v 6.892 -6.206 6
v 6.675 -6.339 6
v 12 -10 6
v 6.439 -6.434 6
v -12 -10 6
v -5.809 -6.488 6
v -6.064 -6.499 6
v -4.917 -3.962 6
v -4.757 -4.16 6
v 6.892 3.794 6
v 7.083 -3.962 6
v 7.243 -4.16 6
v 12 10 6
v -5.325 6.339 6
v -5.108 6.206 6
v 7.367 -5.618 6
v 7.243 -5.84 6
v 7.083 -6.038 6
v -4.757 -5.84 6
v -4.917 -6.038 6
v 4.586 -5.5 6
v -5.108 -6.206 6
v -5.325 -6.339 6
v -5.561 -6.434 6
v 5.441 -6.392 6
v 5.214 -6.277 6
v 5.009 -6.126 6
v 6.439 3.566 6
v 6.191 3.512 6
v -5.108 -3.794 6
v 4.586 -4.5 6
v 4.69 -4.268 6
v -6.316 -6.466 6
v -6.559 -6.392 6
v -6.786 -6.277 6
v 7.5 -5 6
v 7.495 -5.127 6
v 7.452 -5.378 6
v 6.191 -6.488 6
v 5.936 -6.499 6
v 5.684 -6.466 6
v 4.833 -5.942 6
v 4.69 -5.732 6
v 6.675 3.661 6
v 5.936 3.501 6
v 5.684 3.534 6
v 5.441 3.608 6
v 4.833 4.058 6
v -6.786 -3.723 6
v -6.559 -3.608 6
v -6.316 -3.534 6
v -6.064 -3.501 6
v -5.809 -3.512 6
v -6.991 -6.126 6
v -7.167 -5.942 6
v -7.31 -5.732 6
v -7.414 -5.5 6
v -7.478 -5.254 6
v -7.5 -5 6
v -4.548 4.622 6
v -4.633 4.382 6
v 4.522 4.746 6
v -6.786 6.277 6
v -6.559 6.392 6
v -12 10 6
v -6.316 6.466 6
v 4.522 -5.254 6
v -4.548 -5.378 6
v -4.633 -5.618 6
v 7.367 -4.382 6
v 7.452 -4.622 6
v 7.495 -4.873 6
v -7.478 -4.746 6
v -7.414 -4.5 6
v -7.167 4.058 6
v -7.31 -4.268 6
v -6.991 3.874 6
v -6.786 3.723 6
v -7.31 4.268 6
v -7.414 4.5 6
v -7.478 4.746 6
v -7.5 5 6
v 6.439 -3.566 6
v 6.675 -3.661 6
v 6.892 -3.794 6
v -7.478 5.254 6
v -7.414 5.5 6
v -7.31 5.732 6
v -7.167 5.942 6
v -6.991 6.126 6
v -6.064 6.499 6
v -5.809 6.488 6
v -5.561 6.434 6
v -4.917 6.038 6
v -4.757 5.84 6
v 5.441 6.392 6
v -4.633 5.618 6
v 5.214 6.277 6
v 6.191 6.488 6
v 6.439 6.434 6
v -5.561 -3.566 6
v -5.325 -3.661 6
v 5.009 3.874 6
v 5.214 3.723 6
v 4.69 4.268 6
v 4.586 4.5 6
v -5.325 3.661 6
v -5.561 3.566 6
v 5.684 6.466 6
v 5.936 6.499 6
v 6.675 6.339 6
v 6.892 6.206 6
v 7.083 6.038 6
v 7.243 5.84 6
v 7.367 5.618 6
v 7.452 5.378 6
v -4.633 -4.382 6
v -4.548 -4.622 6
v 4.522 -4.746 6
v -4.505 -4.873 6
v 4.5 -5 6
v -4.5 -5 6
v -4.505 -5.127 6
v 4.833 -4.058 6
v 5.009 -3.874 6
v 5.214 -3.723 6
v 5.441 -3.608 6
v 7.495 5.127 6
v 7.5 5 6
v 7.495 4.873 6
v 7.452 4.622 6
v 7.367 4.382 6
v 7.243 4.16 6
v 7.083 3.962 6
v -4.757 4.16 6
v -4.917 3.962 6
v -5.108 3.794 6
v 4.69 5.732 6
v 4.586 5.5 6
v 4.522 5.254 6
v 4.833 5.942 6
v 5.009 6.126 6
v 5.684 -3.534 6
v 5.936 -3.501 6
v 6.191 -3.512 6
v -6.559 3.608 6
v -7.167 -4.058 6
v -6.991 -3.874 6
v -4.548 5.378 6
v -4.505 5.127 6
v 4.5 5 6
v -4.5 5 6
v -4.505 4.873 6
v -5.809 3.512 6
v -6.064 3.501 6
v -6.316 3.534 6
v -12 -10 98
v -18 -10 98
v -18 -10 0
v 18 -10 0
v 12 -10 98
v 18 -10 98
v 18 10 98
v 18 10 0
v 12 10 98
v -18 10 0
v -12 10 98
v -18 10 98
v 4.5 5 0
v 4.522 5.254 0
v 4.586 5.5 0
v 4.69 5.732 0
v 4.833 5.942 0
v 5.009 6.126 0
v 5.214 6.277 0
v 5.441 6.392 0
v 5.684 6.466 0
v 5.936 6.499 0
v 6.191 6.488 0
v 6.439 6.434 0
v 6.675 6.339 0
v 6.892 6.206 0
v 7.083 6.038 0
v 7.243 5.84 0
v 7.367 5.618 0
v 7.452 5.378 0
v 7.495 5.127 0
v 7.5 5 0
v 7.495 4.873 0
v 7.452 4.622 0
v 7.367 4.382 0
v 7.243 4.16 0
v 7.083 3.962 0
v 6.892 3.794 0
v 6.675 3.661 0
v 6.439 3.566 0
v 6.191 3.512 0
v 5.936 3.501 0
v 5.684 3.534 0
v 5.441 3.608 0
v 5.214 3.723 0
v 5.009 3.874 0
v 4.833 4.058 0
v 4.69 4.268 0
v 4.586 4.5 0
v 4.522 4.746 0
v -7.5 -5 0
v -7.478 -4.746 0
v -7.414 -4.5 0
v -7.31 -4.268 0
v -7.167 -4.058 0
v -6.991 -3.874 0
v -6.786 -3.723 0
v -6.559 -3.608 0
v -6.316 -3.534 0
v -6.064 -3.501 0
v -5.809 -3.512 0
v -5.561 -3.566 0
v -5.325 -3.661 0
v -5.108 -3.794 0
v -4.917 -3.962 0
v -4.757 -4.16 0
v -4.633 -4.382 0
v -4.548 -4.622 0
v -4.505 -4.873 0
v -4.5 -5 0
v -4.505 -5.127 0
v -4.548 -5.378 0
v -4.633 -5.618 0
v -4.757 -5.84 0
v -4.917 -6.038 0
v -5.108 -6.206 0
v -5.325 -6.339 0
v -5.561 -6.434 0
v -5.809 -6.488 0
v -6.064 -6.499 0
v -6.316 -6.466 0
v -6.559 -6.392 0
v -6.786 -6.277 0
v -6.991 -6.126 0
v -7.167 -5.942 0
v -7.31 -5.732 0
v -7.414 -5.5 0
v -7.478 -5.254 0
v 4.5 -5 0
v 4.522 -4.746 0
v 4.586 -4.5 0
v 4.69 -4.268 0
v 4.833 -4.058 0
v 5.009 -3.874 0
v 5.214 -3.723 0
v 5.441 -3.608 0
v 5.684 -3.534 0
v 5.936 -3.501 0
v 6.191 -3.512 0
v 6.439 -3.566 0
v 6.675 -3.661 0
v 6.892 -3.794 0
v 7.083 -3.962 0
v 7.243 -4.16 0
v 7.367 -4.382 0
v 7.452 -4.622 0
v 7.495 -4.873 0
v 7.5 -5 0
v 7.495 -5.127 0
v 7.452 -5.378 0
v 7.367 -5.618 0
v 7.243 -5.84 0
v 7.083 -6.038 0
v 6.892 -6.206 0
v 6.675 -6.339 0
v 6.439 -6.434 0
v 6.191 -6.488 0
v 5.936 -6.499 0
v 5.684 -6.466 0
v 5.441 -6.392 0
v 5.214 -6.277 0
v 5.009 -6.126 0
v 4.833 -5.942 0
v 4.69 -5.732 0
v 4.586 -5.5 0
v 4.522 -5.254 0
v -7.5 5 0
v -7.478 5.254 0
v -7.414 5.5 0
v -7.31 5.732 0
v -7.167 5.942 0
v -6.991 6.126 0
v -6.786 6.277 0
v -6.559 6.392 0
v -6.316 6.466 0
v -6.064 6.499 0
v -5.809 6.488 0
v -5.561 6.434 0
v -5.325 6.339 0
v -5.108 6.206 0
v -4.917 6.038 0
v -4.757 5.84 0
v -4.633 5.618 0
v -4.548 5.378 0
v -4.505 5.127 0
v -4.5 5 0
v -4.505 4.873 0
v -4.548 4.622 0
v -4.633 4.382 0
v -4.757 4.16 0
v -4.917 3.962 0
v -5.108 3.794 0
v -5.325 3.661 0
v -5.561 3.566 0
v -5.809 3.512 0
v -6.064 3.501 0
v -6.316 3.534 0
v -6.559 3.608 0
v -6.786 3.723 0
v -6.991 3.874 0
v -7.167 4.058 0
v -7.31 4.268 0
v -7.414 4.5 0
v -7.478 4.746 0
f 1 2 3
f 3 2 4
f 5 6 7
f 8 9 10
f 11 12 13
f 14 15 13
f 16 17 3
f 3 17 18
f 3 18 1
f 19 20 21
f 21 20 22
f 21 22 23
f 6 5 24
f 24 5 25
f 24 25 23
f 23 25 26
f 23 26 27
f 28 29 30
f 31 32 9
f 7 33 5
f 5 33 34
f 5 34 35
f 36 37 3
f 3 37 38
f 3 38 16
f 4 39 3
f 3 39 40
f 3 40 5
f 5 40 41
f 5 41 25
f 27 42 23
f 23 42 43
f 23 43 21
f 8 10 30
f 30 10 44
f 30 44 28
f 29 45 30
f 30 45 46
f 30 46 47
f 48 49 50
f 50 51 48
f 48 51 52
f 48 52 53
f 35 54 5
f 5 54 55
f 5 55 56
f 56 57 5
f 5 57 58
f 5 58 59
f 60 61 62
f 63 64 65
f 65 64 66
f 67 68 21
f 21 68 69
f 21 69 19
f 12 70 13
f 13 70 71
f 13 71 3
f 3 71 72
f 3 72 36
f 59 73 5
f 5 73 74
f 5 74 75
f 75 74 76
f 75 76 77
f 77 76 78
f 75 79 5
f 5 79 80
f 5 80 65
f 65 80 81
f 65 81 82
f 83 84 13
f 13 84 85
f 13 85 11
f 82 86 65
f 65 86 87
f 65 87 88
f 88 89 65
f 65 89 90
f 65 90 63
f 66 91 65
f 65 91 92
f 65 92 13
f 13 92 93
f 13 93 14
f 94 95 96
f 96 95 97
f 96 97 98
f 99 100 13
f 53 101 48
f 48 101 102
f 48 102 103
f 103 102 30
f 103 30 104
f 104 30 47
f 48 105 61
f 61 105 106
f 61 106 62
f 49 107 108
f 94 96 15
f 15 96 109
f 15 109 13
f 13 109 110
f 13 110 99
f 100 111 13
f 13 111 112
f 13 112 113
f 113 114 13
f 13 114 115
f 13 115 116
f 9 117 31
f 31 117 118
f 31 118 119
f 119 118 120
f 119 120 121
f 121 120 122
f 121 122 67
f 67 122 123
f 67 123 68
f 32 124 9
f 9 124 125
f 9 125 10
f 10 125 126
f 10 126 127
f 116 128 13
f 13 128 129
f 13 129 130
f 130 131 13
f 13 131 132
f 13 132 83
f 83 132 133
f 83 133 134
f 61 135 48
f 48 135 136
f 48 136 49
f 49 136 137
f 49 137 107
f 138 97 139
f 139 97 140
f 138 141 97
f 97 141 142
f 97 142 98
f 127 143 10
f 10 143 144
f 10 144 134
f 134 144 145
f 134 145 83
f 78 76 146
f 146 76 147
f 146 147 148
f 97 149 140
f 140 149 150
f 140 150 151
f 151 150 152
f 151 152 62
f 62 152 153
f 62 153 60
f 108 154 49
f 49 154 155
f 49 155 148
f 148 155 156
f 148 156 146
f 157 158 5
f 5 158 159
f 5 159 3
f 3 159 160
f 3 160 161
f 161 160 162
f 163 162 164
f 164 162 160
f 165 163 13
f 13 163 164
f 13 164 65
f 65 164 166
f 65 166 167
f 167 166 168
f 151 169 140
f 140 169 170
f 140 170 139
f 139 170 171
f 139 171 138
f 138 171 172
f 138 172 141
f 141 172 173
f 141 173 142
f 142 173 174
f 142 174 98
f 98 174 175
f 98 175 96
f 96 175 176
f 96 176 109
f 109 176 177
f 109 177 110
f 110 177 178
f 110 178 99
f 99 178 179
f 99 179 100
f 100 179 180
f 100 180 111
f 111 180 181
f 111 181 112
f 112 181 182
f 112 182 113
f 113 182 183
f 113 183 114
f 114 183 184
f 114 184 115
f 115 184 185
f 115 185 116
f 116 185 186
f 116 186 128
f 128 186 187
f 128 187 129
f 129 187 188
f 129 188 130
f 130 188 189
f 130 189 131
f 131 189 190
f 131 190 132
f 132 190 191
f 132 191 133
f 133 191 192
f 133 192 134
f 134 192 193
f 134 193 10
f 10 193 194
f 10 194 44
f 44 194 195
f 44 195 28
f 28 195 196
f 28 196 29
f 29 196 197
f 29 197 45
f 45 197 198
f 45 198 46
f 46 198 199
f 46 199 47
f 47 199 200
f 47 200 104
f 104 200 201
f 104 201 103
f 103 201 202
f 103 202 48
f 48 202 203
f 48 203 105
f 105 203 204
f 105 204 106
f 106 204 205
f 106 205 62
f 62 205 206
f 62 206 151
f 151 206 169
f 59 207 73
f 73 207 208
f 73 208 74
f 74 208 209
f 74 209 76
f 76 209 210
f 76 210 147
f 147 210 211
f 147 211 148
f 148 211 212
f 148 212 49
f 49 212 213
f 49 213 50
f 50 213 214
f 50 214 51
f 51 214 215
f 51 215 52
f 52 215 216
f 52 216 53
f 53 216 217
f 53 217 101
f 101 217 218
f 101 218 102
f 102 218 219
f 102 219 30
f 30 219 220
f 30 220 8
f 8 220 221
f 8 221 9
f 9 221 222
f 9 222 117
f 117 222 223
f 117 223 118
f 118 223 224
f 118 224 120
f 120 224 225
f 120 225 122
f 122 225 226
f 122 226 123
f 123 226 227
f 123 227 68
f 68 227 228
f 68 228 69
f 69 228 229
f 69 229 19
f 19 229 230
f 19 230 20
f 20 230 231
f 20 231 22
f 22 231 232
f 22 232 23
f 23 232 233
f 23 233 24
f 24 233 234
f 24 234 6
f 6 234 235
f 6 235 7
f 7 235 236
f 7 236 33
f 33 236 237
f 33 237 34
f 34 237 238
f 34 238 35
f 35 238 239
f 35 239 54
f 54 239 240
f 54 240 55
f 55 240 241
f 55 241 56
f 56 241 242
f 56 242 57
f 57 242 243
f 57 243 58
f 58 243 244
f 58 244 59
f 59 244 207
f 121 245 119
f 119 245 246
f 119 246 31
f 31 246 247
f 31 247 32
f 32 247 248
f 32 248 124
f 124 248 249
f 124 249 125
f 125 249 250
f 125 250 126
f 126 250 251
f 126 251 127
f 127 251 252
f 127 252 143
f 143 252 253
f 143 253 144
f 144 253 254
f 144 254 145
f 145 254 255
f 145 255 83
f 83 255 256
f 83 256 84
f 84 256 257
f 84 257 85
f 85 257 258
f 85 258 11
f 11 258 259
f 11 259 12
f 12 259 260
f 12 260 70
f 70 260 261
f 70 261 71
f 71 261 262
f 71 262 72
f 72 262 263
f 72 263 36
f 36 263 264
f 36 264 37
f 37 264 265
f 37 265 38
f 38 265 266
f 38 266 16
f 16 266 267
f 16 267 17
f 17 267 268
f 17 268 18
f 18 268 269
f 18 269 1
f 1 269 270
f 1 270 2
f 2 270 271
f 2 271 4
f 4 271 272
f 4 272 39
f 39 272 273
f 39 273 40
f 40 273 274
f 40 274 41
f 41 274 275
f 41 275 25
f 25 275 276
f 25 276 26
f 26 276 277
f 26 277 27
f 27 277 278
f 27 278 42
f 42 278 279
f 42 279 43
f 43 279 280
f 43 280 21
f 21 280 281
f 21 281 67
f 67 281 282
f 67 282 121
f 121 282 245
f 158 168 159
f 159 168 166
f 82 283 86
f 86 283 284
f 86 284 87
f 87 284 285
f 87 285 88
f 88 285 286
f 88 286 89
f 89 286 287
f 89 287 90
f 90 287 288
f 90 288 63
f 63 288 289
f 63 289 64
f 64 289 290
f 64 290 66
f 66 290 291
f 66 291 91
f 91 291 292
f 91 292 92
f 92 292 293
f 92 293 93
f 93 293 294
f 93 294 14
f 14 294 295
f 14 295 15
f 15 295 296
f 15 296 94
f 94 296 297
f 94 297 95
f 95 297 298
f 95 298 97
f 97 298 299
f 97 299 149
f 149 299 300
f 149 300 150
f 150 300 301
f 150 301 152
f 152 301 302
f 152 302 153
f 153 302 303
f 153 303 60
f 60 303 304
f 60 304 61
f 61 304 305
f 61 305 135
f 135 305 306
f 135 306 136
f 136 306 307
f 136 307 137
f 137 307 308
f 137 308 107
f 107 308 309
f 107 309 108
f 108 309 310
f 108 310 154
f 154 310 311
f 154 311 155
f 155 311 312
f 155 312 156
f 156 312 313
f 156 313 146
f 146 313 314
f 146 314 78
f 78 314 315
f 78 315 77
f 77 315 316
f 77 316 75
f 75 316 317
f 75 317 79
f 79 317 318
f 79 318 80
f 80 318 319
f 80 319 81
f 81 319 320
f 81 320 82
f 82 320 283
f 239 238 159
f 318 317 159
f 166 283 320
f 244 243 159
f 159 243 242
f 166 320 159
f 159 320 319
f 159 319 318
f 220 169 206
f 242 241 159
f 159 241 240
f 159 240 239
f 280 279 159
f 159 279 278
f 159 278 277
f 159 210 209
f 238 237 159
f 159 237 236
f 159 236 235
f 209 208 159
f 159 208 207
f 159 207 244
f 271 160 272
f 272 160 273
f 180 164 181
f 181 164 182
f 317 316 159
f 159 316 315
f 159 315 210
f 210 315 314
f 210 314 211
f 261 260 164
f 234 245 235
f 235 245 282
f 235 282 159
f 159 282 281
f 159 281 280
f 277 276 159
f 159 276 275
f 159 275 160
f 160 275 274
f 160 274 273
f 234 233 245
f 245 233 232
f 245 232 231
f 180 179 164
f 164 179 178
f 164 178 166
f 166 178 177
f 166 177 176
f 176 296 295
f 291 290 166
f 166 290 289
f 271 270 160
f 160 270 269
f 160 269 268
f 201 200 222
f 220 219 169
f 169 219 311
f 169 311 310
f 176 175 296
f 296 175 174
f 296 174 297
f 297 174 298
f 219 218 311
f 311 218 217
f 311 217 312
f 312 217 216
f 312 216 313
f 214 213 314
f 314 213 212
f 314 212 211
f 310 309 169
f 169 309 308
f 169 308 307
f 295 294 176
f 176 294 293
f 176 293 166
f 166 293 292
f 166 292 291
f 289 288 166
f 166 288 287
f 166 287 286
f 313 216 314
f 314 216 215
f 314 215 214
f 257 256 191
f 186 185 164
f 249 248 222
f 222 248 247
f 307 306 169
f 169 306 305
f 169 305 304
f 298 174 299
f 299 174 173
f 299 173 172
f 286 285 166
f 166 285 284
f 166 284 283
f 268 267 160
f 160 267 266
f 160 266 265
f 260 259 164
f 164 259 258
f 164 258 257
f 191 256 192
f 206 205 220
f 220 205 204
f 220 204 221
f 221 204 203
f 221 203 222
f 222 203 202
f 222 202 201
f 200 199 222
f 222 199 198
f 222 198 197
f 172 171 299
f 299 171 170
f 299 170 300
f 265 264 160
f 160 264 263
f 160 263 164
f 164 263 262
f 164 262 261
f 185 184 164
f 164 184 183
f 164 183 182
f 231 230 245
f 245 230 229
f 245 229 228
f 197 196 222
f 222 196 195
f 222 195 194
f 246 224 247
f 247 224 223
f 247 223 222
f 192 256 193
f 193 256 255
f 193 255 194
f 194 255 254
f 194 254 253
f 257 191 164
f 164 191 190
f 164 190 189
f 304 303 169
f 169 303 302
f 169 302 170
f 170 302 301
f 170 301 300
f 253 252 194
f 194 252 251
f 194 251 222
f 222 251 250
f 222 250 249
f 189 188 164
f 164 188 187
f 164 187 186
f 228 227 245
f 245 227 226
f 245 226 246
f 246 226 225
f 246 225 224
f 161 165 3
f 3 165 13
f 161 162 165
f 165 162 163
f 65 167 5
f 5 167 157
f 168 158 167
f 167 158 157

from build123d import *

# Parameters (mm, degrees)
SKETCH_1_W      = 36
SKETCH_1_H      = 20
SKETCH_1_R      = 1.5
EXTRUDE_1_DEPTH = 6
SKETCH_1_3_W    = 6
SKETCH_1_3_H    = 20
EXTRUDE_2_DEPTH = 98


with BuildPart() as part:
    # Эскиз1 → Бобышка-Вытянуть1 (new body)
    with BuildSketch(Plane.XY):
        Rectangle(SKETCH_1_W, SKETCH_1_H)
        with Locations((6, 5)):
            Circle(SKETCH_1_R, mode=Mode.SUBTRACT)
        with Locations((-6, -5)):
            Circle(SKETCH_1_R, mode=Mode.SUBTRACT)
        with Locations((6, -5)):
            Circle(SKETCH_1_R, mode=Mode.SUBTRACT)
        with Locations((-6, 5)):
            Circle(SKETCH_1_R, mode=Mode.SUBTRACT)
    extrude(amount=EXTRUDE_1_DEPTH)

    # Эскиз1<3> → Бобышка-Вытянуть2 (add)
    with BuildSketch(Plane.XY):
        with Locations((-15, 0)):
            Rectangle(SKETCH_1_3_W, SKETCH_1_3_H)
        with Locations((15, 0)):
            Rectangle(SKETCH_1_3_W, SKETCH_1_3_H)
    extrude(amount=EXTRUDE_2_DEPTH)


solid = part.part
